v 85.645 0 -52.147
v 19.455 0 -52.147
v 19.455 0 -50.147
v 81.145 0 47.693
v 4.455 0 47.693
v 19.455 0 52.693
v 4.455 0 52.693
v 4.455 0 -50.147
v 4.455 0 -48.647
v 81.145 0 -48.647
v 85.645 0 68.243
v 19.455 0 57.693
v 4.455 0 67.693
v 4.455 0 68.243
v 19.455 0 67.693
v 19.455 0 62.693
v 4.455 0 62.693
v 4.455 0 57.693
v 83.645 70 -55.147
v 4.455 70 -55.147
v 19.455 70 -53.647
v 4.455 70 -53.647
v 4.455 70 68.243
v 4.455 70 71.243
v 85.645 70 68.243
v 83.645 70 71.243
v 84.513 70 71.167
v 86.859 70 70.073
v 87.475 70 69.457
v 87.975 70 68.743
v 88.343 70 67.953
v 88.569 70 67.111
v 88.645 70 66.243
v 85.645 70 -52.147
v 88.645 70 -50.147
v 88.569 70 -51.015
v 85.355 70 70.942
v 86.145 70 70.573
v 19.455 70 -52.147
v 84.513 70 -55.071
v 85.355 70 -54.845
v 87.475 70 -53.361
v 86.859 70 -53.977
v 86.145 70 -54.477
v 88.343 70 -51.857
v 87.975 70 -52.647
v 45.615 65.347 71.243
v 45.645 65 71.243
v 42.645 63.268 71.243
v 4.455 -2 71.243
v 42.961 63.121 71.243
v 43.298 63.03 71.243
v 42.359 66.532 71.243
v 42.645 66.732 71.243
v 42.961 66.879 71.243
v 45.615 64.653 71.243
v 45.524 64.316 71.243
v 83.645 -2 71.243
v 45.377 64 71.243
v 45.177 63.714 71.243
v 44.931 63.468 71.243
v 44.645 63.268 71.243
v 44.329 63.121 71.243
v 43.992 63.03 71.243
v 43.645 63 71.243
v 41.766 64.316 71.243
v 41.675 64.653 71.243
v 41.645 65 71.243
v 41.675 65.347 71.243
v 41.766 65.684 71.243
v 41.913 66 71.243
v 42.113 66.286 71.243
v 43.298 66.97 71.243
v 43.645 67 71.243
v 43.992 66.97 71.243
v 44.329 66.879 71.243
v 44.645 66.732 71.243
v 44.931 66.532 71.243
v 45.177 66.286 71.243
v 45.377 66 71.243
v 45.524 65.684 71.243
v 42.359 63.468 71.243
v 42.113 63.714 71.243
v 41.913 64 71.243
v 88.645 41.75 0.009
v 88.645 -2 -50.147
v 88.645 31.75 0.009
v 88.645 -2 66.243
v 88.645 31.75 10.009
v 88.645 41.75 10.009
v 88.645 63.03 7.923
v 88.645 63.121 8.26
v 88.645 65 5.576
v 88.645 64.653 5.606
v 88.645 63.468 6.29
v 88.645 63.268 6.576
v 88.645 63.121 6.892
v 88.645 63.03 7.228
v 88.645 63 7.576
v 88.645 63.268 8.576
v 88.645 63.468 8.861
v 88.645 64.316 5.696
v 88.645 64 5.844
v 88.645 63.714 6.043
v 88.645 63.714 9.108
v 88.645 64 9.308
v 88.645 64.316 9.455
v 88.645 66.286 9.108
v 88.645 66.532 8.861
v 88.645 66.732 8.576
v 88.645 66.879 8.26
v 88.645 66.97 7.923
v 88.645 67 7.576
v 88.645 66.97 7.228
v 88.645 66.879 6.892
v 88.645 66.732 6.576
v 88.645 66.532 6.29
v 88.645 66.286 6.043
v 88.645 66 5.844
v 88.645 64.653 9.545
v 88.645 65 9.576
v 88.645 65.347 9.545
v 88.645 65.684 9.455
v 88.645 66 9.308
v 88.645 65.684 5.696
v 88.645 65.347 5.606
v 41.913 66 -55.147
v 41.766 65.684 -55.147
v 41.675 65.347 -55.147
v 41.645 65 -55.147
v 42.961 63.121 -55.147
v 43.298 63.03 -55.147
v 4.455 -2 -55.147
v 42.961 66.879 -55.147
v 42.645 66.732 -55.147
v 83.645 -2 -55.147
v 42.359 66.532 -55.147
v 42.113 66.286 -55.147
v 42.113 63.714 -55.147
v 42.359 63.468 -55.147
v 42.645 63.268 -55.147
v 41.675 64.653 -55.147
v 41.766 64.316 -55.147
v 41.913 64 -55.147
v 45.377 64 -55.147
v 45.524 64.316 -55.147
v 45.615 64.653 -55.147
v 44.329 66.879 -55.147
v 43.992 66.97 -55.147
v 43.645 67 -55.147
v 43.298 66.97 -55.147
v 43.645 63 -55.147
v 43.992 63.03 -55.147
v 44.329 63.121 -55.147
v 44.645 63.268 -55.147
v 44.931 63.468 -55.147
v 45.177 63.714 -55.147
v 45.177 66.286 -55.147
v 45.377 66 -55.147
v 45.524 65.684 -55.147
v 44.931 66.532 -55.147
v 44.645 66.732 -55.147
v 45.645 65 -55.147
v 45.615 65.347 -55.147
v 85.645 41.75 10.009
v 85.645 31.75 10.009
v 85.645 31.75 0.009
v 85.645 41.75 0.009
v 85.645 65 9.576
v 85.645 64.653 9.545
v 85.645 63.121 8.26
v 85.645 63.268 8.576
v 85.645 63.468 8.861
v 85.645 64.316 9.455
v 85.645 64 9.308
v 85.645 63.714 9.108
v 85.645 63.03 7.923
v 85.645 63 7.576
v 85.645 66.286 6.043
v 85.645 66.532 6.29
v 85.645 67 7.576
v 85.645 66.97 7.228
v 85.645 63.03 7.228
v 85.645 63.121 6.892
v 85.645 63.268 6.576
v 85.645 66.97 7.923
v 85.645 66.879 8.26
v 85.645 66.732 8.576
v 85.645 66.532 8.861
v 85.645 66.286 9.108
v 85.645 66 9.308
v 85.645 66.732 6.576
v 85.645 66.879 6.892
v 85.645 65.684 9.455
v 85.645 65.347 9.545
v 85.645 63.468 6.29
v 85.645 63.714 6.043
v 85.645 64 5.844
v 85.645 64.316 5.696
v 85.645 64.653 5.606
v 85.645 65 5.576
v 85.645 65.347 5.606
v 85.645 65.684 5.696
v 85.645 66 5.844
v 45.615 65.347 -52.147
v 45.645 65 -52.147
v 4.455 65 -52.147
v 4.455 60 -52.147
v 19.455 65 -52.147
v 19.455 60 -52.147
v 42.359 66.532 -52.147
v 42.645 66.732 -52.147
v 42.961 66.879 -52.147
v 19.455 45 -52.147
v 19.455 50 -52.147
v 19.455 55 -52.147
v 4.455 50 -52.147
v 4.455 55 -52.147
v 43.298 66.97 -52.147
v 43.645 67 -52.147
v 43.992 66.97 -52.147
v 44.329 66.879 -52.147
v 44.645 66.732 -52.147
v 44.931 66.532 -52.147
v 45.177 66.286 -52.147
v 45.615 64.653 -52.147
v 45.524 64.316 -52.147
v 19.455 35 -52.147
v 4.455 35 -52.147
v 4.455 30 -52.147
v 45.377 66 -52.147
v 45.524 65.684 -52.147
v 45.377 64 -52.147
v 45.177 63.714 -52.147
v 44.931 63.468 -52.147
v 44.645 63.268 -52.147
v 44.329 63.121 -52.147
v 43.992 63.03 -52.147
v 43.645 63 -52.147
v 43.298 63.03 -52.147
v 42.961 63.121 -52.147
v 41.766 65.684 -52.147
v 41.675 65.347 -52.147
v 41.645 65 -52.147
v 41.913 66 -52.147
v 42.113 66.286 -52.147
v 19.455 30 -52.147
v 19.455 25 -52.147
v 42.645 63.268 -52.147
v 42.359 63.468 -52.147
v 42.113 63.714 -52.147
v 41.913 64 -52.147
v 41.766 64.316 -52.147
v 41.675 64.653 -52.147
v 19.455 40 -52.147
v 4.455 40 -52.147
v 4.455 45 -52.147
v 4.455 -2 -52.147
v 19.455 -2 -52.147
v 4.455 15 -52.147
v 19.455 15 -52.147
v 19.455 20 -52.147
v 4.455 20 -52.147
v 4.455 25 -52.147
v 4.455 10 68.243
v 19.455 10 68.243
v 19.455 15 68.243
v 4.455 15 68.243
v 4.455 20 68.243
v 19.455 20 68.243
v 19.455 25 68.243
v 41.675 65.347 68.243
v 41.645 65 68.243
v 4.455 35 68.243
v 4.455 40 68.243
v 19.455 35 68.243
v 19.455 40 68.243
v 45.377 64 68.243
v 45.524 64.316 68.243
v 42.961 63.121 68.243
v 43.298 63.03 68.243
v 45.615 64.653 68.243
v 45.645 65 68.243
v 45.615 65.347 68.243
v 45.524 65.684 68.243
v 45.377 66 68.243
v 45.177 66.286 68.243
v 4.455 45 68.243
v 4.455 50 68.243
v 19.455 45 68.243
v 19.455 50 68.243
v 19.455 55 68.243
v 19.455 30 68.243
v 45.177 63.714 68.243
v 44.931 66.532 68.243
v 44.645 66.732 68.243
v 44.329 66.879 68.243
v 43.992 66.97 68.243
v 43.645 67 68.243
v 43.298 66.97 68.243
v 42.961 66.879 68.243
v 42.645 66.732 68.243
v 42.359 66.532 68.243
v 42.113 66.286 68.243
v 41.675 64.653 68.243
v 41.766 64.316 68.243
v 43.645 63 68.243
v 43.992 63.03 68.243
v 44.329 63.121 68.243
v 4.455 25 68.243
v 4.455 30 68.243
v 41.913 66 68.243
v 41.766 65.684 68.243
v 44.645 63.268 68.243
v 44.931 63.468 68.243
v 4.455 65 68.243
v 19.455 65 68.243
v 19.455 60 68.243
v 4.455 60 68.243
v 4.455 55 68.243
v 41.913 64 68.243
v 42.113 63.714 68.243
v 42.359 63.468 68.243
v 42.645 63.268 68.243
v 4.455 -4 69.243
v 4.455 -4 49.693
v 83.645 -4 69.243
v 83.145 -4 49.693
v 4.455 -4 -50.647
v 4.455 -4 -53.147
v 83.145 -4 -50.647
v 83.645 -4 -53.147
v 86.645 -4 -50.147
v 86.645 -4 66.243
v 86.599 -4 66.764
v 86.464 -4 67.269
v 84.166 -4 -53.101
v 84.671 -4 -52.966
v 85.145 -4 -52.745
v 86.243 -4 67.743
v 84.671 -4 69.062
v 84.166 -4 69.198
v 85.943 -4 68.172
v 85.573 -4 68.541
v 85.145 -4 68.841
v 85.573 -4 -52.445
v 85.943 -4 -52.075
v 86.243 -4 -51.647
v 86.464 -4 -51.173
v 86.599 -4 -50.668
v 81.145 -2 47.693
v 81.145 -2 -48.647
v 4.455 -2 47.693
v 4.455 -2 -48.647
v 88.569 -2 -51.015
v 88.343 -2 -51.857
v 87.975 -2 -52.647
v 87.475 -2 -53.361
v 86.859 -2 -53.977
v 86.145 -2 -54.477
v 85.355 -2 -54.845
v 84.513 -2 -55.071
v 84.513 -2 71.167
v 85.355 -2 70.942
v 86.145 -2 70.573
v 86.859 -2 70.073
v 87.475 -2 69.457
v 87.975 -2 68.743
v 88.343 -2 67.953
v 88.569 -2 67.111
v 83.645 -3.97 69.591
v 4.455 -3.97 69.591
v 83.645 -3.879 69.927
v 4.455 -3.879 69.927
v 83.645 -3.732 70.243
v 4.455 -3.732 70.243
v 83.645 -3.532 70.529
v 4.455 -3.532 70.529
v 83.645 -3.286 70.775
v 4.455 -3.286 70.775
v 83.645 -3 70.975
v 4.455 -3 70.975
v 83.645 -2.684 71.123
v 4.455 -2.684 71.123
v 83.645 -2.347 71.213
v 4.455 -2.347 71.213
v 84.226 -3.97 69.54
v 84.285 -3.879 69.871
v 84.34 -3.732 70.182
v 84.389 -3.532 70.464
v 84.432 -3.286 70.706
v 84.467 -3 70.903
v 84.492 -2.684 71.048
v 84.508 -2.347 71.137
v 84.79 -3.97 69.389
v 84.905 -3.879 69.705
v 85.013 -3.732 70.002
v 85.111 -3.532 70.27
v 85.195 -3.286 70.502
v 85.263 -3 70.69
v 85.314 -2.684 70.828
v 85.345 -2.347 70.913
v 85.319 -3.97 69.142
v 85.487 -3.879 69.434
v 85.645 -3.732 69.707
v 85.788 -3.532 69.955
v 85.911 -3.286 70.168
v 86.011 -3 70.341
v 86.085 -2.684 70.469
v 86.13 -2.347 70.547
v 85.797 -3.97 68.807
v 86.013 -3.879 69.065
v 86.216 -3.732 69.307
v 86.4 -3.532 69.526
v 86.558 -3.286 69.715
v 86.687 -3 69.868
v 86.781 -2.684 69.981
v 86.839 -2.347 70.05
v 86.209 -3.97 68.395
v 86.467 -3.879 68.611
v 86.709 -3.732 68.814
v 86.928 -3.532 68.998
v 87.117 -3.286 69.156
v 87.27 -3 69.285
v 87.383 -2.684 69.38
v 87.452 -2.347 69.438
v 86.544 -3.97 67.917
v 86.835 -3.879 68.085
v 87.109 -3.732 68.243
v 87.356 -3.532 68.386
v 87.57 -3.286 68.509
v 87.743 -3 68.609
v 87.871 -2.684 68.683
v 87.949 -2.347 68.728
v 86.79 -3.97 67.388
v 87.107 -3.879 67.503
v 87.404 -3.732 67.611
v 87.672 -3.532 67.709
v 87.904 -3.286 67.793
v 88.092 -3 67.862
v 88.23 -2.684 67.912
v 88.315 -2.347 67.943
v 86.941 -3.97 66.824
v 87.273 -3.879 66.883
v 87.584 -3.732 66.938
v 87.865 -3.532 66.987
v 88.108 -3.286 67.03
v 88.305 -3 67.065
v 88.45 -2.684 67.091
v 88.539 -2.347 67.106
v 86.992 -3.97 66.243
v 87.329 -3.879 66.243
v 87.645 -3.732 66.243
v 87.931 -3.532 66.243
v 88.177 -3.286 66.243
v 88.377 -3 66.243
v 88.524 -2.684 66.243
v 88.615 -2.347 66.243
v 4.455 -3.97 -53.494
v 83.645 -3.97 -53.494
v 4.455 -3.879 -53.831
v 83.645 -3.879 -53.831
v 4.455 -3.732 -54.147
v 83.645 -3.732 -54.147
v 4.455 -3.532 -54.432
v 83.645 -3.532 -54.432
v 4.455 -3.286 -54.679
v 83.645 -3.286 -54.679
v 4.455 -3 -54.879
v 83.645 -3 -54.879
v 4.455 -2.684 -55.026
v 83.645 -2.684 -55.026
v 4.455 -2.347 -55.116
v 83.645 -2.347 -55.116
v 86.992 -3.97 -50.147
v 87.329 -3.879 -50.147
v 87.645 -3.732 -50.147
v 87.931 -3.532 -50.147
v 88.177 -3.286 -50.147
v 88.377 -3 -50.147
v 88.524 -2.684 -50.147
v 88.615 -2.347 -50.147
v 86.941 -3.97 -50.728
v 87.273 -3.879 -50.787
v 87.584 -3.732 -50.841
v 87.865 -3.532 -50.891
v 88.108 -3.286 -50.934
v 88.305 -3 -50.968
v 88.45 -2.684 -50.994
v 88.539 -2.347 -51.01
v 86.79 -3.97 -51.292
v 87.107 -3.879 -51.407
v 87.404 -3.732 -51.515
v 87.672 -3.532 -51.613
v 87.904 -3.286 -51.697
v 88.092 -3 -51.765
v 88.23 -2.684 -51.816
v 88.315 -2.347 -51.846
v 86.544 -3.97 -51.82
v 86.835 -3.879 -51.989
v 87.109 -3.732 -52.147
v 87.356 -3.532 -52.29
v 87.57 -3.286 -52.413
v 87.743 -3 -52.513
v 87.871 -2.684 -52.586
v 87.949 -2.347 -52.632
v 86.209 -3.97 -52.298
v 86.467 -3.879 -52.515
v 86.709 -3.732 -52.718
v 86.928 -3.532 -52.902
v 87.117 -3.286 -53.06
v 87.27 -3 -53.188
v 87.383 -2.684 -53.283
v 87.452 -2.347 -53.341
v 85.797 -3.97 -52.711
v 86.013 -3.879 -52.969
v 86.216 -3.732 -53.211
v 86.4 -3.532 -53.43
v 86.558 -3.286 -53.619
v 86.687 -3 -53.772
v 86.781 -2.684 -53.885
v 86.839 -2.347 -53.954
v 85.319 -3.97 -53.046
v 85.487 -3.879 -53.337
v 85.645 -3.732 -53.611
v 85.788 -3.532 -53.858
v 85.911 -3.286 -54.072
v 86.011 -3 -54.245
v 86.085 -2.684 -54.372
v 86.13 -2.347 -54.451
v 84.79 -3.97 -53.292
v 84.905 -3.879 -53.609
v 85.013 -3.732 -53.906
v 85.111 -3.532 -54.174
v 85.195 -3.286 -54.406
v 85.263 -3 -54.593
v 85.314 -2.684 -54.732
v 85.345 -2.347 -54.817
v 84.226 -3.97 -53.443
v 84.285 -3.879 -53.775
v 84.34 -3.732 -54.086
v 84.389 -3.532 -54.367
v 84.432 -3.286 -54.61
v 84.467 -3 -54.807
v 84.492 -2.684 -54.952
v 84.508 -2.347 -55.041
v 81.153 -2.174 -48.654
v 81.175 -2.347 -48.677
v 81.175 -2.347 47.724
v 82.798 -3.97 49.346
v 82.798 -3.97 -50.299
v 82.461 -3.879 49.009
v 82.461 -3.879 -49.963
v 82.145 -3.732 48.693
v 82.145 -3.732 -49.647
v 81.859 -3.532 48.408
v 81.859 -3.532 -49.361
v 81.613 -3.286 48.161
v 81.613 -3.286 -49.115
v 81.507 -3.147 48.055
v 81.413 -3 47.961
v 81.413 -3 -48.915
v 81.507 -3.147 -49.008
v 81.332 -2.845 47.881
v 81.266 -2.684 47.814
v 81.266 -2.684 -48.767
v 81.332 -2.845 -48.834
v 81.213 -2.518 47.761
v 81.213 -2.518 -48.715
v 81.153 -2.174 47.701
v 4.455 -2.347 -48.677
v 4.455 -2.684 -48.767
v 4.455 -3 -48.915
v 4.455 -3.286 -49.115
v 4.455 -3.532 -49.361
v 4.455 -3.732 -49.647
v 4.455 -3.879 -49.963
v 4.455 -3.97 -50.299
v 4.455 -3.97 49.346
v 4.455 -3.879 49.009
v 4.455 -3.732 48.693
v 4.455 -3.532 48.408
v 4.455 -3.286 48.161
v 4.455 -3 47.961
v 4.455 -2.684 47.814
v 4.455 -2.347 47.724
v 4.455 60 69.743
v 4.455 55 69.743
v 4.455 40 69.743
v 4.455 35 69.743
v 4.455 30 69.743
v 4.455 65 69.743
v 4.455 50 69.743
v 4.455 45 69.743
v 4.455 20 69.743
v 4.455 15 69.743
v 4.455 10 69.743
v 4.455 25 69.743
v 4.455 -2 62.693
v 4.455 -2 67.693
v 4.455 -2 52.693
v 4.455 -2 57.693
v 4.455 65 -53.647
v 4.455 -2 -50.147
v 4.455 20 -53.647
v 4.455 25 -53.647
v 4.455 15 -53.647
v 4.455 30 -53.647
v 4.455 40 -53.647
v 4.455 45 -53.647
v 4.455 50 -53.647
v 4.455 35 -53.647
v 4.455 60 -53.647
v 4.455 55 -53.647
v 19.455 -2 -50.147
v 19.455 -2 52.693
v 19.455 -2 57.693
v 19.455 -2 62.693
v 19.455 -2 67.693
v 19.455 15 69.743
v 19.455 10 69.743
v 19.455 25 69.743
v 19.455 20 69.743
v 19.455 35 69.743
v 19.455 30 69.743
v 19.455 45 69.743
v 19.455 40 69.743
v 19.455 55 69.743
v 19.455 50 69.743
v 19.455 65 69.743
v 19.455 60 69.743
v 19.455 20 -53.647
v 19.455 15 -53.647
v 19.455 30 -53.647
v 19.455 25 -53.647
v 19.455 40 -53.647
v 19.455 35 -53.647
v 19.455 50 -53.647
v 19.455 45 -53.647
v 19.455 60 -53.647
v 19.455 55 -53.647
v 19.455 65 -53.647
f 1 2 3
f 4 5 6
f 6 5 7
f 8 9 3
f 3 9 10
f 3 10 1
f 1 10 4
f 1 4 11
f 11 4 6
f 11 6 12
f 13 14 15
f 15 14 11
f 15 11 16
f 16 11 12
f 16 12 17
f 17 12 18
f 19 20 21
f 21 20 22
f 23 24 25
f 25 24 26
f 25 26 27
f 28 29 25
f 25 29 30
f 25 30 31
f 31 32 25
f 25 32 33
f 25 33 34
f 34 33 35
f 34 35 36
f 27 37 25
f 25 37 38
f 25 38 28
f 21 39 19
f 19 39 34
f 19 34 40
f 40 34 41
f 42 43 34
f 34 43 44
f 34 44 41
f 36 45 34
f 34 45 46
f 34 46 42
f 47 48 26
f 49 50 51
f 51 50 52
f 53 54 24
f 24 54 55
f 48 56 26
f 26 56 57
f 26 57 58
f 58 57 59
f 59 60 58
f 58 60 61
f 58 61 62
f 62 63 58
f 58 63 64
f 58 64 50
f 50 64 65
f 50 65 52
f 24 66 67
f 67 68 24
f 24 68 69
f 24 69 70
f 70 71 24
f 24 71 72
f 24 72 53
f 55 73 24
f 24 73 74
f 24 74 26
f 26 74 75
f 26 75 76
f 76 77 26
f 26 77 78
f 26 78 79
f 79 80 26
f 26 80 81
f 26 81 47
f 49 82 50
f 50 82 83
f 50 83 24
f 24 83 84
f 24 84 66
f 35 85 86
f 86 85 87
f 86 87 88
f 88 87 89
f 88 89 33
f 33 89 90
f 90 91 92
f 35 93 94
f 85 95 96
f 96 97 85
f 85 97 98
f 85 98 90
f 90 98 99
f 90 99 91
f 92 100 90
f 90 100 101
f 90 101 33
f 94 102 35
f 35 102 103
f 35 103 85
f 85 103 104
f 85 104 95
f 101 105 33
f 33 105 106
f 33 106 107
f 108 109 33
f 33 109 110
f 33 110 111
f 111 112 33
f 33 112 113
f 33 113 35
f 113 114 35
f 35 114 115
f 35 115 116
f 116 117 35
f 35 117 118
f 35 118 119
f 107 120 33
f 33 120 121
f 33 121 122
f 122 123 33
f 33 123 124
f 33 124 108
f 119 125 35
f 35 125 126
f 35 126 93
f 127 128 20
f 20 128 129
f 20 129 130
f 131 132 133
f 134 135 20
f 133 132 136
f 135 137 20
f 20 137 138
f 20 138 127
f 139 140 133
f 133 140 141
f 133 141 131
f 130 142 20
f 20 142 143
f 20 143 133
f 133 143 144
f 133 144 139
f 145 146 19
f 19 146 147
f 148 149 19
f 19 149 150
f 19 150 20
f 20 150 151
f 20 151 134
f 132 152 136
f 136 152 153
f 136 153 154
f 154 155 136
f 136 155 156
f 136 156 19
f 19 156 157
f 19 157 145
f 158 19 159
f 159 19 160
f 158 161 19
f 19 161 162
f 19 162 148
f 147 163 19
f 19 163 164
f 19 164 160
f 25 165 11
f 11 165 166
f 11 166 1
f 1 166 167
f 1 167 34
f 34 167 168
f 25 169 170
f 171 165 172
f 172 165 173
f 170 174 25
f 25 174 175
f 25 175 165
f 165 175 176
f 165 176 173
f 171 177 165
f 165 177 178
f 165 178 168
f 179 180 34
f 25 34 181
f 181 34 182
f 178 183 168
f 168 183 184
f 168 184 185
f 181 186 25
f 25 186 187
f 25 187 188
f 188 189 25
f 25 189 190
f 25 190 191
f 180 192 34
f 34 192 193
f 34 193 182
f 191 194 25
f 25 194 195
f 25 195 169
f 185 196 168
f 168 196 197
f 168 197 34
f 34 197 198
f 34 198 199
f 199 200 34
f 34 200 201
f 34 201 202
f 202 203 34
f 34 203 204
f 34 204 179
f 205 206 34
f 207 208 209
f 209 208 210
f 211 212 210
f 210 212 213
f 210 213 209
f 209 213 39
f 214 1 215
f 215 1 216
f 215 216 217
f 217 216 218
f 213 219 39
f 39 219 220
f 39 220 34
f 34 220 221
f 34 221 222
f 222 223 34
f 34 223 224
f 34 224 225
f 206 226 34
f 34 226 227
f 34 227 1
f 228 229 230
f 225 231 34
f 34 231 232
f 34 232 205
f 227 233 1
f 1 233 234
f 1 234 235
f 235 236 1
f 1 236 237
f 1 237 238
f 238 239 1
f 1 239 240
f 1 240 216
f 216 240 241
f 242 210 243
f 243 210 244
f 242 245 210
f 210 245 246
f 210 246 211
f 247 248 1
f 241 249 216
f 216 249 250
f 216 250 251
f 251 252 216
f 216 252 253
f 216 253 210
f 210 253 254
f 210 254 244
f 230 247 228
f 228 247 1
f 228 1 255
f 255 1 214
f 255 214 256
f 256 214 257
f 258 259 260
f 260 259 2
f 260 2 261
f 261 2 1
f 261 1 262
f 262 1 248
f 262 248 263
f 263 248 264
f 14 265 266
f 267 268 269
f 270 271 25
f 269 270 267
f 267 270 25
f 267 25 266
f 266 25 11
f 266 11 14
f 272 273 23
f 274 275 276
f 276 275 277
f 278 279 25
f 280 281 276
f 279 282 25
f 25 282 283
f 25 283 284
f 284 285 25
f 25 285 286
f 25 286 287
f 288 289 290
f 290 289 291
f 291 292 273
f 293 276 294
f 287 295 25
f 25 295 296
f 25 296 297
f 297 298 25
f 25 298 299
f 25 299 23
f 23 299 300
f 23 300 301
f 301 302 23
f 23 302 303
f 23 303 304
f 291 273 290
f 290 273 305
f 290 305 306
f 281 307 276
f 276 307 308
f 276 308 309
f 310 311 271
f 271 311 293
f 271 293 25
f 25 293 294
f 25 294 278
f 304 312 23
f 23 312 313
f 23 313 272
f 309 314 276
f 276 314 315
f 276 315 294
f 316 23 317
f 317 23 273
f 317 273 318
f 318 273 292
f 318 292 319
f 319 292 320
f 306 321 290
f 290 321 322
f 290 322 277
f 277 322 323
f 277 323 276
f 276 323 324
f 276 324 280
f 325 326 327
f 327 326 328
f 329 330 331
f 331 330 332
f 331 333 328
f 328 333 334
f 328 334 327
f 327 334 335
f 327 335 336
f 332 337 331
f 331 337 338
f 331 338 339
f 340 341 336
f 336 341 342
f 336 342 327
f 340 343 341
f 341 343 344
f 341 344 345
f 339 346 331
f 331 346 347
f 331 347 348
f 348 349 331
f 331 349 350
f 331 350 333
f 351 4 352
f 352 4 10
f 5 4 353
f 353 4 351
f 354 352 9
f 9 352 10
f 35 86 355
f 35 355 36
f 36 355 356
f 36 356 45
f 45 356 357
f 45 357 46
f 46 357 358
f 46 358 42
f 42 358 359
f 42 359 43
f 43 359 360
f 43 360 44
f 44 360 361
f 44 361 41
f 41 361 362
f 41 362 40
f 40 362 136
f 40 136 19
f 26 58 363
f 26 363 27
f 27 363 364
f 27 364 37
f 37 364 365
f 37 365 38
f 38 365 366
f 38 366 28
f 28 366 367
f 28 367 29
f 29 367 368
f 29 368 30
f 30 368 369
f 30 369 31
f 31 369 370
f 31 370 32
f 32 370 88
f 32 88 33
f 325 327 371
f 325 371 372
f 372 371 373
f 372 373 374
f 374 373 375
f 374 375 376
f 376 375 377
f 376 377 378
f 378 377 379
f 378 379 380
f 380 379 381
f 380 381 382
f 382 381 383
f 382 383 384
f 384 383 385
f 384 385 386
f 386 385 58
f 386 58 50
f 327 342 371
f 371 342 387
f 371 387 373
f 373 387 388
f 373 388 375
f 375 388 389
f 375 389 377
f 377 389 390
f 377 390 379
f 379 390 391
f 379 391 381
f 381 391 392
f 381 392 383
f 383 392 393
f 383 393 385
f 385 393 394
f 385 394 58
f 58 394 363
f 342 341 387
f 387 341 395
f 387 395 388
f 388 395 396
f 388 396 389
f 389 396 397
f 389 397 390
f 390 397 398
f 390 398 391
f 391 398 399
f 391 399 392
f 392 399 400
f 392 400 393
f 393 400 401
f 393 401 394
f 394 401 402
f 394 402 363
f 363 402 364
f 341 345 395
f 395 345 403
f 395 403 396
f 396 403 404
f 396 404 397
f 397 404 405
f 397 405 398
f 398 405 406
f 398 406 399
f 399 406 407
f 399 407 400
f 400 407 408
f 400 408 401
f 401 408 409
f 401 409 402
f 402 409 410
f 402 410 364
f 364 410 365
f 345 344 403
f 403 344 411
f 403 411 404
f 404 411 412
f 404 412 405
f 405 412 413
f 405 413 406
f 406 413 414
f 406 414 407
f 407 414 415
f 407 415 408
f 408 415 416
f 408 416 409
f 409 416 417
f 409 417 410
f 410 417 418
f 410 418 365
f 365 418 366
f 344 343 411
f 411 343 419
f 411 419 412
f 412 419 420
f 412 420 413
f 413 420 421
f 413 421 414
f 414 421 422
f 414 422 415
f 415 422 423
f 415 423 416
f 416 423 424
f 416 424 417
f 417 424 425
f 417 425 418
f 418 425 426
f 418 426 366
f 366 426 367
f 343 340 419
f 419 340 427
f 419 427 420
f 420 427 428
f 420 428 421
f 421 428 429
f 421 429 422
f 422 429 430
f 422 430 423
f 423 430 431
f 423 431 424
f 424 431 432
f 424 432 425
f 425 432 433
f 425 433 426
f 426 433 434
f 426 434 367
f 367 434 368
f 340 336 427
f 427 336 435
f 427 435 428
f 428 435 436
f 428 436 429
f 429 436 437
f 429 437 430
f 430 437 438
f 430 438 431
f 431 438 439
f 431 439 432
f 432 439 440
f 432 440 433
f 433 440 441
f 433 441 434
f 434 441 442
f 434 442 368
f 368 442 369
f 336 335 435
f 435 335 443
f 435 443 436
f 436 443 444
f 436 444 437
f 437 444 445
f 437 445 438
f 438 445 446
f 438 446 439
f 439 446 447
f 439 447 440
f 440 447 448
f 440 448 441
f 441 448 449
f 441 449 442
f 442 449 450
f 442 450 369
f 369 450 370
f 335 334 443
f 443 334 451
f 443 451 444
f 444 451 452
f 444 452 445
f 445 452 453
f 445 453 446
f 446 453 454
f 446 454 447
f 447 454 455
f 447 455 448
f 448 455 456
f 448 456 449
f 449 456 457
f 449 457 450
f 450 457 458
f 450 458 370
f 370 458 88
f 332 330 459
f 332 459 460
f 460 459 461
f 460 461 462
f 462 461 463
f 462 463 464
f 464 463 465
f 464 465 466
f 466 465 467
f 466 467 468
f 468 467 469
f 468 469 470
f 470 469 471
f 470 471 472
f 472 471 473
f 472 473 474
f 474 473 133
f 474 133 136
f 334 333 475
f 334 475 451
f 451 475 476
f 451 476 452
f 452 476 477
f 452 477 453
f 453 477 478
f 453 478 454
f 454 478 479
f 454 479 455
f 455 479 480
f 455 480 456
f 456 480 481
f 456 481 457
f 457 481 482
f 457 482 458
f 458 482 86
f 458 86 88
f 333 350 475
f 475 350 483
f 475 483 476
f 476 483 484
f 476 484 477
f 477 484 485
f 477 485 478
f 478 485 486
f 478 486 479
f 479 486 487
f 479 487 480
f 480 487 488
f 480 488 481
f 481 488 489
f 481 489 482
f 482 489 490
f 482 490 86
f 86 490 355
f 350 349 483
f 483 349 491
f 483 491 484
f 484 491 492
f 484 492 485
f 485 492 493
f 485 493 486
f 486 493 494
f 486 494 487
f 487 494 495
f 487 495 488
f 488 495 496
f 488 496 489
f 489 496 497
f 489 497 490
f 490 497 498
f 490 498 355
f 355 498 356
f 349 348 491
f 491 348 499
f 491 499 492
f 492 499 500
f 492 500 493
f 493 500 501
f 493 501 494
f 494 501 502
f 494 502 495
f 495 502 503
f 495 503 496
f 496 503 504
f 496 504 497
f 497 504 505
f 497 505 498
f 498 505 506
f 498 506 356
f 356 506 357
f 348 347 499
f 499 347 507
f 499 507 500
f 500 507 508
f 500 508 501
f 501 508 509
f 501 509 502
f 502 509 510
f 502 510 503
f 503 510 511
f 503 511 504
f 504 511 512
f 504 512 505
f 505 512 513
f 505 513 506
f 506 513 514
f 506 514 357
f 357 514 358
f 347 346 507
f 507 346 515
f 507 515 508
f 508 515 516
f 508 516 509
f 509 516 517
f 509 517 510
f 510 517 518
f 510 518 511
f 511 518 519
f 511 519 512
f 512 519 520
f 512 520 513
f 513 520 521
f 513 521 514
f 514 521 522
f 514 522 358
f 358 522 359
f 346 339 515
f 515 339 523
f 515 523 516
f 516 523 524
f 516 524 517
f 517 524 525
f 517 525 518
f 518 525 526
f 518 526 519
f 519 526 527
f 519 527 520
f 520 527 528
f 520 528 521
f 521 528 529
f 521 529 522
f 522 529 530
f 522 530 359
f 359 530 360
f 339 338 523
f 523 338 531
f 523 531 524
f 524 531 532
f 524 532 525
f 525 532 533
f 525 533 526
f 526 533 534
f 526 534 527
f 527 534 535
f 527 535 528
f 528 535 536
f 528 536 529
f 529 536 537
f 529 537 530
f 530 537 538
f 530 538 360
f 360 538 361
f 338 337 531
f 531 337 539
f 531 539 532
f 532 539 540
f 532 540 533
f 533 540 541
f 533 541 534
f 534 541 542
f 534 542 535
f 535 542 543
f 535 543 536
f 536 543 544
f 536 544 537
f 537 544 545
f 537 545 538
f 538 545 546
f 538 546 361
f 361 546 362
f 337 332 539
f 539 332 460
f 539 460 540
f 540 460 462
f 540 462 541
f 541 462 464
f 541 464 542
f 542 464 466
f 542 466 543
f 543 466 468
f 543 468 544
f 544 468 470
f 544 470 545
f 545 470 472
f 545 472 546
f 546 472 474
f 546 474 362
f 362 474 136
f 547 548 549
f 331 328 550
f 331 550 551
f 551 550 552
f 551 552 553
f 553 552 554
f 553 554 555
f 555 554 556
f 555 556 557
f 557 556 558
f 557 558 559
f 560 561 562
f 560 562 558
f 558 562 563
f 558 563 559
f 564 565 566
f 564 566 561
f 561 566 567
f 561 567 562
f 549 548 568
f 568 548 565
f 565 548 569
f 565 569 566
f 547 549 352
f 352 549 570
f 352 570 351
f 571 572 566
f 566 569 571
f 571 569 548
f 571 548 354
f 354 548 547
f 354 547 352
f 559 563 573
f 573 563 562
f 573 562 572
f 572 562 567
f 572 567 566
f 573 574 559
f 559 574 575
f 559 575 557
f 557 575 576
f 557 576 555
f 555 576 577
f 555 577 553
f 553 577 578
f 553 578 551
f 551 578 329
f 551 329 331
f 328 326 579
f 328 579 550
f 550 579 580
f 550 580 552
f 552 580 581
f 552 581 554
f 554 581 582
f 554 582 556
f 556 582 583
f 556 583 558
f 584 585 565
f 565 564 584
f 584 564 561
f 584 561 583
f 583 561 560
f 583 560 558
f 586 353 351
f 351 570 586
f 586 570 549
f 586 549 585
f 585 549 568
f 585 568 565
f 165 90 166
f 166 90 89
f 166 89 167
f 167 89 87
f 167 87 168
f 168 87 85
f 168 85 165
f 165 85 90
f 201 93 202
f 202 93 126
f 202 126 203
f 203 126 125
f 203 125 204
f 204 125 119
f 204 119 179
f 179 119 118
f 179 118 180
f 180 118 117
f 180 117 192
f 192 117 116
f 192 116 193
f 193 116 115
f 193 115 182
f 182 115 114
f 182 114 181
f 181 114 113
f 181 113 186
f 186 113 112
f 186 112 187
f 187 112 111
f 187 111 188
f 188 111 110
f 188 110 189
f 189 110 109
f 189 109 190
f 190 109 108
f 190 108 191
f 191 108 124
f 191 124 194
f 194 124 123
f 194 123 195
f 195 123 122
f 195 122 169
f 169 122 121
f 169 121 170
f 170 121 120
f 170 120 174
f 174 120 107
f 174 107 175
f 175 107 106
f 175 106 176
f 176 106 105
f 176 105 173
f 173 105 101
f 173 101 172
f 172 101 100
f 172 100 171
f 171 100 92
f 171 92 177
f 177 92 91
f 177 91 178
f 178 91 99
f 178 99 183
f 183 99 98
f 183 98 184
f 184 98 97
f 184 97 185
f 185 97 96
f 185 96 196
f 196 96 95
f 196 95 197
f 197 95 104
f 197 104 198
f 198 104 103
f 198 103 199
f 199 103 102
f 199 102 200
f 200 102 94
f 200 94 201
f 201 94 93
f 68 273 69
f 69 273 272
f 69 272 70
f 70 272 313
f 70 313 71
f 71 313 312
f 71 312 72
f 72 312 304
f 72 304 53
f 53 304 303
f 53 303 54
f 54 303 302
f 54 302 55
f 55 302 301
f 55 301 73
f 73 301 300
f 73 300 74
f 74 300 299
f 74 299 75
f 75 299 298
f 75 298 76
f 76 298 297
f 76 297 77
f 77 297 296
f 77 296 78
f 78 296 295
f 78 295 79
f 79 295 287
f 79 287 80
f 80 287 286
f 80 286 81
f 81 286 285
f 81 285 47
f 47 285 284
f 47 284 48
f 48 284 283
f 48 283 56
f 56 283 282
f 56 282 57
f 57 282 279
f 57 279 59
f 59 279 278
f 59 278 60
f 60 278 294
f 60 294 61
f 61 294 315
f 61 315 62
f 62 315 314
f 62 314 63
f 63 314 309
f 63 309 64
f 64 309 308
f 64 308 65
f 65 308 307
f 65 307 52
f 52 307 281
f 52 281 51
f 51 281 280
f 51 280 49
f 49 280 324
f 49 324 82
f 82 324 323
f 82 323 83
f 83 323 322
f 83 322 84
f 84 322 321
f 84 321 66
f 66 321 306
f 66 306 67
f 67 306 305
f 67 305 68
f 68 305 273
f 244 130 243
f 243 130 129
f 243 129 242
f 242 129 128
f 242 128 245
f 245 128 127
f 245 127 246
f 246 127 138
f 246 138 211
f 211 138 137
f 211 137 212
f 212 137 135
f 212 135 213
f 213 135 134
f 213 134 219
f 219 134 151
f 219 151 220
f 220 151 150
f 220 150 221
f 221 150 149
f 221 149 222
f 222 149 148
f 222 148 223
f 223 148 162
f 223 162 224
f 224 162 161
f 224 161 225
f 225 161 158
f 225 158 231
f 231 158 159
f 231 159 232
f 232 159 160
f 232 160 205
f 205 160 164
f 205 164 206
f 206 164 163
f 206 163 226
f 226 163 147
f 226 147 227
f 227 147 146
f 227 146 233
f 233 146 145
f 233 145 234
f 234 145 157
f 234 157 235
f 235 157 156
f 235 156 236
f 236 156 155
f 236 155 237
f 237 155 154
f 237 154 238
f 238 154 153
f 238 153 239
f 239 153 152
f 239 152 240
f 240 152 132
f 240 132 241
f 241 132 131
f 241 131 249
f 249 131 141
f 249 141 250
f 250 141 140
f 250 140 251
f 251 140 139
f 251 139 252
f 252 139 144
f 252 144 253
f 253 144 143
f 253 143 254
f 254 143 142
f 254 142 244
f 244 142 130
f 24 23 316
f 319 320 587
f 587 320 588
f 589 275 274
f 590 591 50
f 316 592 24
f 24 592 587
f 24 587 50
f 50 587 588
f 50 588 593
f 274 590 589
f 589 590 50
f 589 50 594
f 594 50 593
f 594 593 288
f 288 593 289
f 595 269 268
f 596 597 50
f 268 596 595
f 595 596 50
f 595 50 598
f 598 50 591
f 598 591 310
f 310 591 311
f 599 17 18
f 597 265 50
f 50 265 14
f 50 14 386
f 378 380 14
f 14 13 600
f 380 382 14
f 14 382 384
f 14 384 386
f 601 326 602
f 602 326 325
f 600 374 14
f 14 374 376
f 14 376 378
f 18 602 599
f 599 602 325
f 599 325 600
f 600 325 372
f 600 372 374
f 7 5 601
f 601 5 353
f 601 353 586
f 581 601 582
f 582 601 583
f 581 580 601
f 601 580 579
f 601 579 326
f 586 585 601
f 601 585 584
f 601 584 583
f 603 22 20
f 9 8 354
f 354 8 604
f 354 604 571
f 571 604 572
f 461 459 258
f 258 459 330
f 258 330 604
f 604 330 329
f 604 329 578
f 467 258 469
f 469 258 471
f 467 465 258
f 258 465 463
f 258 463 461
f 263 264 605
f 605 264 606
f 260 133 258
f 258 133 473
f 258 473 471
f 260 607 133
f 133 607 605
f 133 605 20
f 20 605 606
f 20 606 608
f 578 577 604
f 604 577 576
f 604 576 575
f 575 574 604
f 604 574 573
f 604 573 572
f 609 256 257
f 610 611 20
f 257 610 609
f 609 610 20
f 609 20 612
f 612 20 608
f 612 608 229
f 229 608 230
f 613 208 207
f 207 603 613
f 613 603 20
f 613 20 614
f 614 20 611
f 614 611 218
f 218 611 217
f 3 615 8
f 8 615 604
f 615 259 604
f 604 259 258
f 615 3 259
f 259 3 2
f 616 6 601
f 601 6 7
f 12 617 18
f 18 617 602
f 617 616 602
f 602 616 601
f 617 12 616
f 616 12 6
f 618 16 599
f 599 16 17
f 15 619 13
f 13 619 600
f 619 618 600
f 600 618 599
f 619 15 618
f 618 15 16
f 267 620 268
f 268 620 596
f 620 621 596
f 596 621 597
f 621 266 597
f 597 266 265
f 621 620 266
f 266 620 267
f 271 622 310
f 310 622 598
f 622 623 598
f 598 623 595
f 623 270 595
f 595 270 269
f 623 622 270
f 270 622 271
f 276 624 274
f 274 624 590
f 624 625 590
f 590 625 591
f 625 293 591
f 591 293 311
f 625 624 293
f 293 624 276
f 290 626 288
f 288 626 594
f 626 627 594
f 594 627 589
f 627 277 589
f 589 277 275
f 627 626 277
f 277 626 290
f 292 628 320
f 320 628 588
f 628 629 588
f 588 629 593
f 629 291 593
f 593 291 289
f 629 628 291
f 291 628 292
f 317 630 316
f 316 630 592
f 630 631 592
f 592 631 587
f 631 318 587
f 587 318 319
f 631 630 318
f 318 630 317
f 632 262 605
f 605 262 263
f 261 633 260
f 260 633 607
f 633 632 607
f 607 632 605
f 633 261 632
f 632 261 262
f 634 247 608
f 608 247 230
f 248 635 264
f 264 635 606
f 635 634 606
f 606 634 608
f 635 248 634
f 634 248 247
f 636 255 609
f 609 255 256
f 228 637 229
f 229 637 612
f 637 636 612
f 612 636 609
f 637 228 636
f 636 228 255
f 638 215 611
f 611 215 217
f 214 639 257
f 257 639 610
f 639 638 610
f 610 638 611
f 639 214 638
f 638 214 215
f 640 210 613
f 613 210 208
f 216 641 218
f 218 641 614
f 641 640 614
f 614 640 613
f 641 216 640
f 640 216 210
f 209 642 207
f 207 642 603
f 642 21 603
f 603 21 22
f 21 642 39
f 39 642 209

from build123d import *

# Parameters (mm, degrees)
SKETCH1_W           = 168.379590863
SKETCH1_H           = 126.39
BOSS_EXTRUDE1_DEPTH = 70
SKETCH2_W           = 168.379590863
SKETCH2_H           = 126.39
BOSS_EXTRUDE2_DEPTH = 4
SKETCH3_W           = 142.779590863
SKETCH3_H           = 96.34
CUT_EXTRUDE1_DEPTH  = 4
FILLET1_R           = 5
FILLET4_R           = 2
FILLET5_R           = 2
SKETCH4_W           = 10
SKETCH4_H           = 10
CUT_EXTRUDE2_DEPTH  = 195
SKETCH6_R           = 2
CUT_EXTRUDE3_DEPTH  = 195
SKETCH8_R           = 2
CUT_EXTRUDE4_DEPTH  = 195
SKETCH9_W           = 103.95032351
SKETCH9_H           = 88.010158037
CUT_EXTRUDE5_DEPTH  = 201
SKETCH10_W          = 5
SKETCH10_H          = 2
SKETCH10_W_2        = 2
CUT_EXTRUDE6_DEPTH  = 15
SKETCH11_W          = 1.5
SKETCH11_H          = 5
CUT_EXTRUDE7_DEPTH  = 15
SKETCH12_W          = 1.5
SKETCH12_H          = 5
CUT_EXTRUDE8_DEPTH  = 15


with BuildPart() as part:
    # Sketch1 → Boss-Extrude1 (new body)
    with BuildSketch(Plane(origin=(0, 0, 0), x_dir=(1, 0, 0), z_dir=(0, 1, 0))):
        with Locations((4.455204569, -8.048213198)):
            Rectangle(SKETCH1_W, SKETCH1_H)
        Polygon((-76.734590863, 32.146786802), (-76.734590863, 52.146786802), (85.645, 52.146786802), (85.645, -68.243213198), (60.555409137, -68.243213198), (-76.734590863, -68.243213198), align=None, mode=Mode.SUBTRACT)
    extrude(amount=BOSS_EXTRUDE1_DEPTH)

    # Sketch2 → Boss-Extrude2 (add)
    with BuildSketch(Plane(origin=(0, 0, 0), x_dir=(-1, 0, 0), z_dir=(0, -1, 0))):
        with Locations((-4.455204569, -8.048213198)):
            Rectangle(SKETCH2_W, SKETCH2_H)
    extrude(amount=BOSS_EXTRUDE2_DEPTH)

    # Sketch3 → Cut-Extrude1 (cut)
    with BuildSketch(Plane(origin=(0, 0, 0), x_dir=(1, 0, 0), z_dir=(0, 1, 0))):
        with Locations((9.755204569, 0.476786802)):
            Rectangle(SKETCH3_W, SKETCH3_H)
    extrude(amount=-CUT_EXTRUDE1_DEPTH, mode=Mode.SUBTRACT)

    # Fillet1
    fillet1_edges = [part.edges().sort_by_distance(p)[0] for p in [
        (-79.734590863, 33, -55.146786802),
        (88.645, 33, -55.146786802),
        (88.645, 33, 71.243213198),
        (-79.734590863, 33, 71.243213198),
    ]]
    fillet(fillet1_edges, radius=FILLET1_R)

    # Fillet4
    fillet4_edges = [part.edges().sort_by_distance(p)[0] for p in [
        (4.455204569, -4, 71.243213198),
        (-79.734590863, -4, 8.048213198),
        (4.455204569, -4, -55.146786802),
        (88.645, -4, 8.048213198),
        (87.180533906, -4, 69.778747104),
        (87.180533906, -4, -53.682320708),
        (-78.270124769, -4, -53.682320708),
        (-78.270124769, -4, 69.778747104),
    ]]
    fillet(fillet4_edges, radius=FILLET4_R)

    # Fillet5
    fillet5_edges = [part.edges().sort_by_distance(p)[0] for p in [
        (81.145, -4, -0.476786802),
        (9.755204569, -4, 47.693213198),
        (-61.634590863, -4, -0.476786802),
        (9.755204569, -4, -48.646786802),
    ]]
    fillet(fillet5_edges, radius=FILLET5_R)

    # Sketch4 → Cut-Extrude2 (cut)
    with BuildSketch(Plane.ZY.offset(79.734590863)):
        with Locations((5.00870497, 36.749697215)):
            Rectangle(SKETCH4_W, SKETCH4_H)
    extrude(amount=-CUT_EXTRUDE2_DEPTH, mode=Mode.SUBTRACT)

    # Sketch6 → Cut-Extrude3 (cut)
    with BuildSketch(Plane(origin=(88.645, 0, 0), x_dir=(0, 0, -1), z_dir=(1, 0, 0))):
        with Locations((-7.57558331, 65)):
            Circle(SKETCH6_R)
    extrude(amount=-CUT_EXTRUDE3_DEPTH, mode=Mode.SUBTRACT)

    # Sketch8 → Cut-Extrude4 (cut)
    with BuildSketch(Plane(origin=(0, 0, -55.146786802), x_dir=(-1, 0, 0), z_dir=(0, 0, -1))):
        with Locations((-43.645, 65)):
            Circle(SKETCH8_R)
        with Locations((34.734590863, 65)):
            Circle(SKETCH8_R)
    extrude(amount=-CUT_EXTRUDE4_DEPTH, mode=Mode.SUBTRACT)

    # Sketch9 → Cut-Extrude5 (cut)
    with BuildSketch(Plane.XY.offset(71.243213198)):
        with Locations((-47.519957186, 25.994920982)):
            Rectangle(SKETCH9_W, SKETCH9_H)
    extrude(amount=-CUT_EXTRUDE5_DEPTH, mode=Mode.SUBTRACT)

    # Sketch10 → Cut-Extrude6 (cut)
    with BuildSketch(Plane.ZY.offset(-4.455204569)):
        with Locations((55.193213198, -1)):
            Rectangle(SKETCH10_W, SKETCH10_H)
        with Locations((65.193213198, -1)):
            Rectangle(SKETCH10_W, SKETCH10_H)
        with Locations((-51.146786802, -1)):
            Rectangle(SKETCH10_W_2, SKETCH10_H)
    extrude(amount=-CUT_EXTRUDE6_DEPTH, mode=Mode.SUBTRACT)

    # Sketch11 → Cut-Extrude7 (cut)
    with BuildSketch(Plane.ZY.offset(-4.455204569)):
        with Locations((68.993213198, 62.5)):
            Rectangle(SKETCH11_W, SKETCH11_H)
        with Locations((68.993213198, 52.5)):
            Rectangle(SKETCH11_W, SKETCH11_H)
        with Locations((68.993213198, 42.5)):
            Rectangle(SKETCH11_W, SKETCH11_H)
        with Locations((68.993213198, 32.5)):
            Rectangle(SKETCH11_W, SKETCH11_H)
        with Locations((68.993213198, 22.5)):
            Rectangle(SKETCH11_W, SKETCH11_H)
        with Locations((68.993213198, 12.5)):
            Rectangle(SKETCH11_W, SKETCH11_H)
    extrude(amount=-CUT_EXTRUDE7_DEPTH, mode=Mode.SUBTRACT)

    # Sketch12 → Cut-Extrude8 (cut)
    with BuildSketch(Plane.ZY.offset(-4.455204569)):
        with Locations((-52.896786802, 57.5)):
            Rectangle(SKETCH12_W, SKETCH12_H)
        with Locations((-52.896786802, 67.5)):
            Rectangle(SKETCH12_W, SKETCH12_H)
        with Locations((-52.896786802, 47.5)):
            Rectangle(SKETCH12_W, SKETCH12_H)
        with Locations((-52.896786802, 37.5)):
            Rectangle(SKETCH12_W, SKETCH12_H)
        with Locations((-52.896786802, 27.5)):
            Rectangle(SKETCH12_W, SKETCH12_H)
        with Locations((-52.896786802, 17.5)):
            Rectangle(SKETCH12_W, SKETCH12_H)
    extrude(amount=-CUT_EXTRUDE8_DEPTH, mode=Mode.SUBTRACT)


solid = part.part
